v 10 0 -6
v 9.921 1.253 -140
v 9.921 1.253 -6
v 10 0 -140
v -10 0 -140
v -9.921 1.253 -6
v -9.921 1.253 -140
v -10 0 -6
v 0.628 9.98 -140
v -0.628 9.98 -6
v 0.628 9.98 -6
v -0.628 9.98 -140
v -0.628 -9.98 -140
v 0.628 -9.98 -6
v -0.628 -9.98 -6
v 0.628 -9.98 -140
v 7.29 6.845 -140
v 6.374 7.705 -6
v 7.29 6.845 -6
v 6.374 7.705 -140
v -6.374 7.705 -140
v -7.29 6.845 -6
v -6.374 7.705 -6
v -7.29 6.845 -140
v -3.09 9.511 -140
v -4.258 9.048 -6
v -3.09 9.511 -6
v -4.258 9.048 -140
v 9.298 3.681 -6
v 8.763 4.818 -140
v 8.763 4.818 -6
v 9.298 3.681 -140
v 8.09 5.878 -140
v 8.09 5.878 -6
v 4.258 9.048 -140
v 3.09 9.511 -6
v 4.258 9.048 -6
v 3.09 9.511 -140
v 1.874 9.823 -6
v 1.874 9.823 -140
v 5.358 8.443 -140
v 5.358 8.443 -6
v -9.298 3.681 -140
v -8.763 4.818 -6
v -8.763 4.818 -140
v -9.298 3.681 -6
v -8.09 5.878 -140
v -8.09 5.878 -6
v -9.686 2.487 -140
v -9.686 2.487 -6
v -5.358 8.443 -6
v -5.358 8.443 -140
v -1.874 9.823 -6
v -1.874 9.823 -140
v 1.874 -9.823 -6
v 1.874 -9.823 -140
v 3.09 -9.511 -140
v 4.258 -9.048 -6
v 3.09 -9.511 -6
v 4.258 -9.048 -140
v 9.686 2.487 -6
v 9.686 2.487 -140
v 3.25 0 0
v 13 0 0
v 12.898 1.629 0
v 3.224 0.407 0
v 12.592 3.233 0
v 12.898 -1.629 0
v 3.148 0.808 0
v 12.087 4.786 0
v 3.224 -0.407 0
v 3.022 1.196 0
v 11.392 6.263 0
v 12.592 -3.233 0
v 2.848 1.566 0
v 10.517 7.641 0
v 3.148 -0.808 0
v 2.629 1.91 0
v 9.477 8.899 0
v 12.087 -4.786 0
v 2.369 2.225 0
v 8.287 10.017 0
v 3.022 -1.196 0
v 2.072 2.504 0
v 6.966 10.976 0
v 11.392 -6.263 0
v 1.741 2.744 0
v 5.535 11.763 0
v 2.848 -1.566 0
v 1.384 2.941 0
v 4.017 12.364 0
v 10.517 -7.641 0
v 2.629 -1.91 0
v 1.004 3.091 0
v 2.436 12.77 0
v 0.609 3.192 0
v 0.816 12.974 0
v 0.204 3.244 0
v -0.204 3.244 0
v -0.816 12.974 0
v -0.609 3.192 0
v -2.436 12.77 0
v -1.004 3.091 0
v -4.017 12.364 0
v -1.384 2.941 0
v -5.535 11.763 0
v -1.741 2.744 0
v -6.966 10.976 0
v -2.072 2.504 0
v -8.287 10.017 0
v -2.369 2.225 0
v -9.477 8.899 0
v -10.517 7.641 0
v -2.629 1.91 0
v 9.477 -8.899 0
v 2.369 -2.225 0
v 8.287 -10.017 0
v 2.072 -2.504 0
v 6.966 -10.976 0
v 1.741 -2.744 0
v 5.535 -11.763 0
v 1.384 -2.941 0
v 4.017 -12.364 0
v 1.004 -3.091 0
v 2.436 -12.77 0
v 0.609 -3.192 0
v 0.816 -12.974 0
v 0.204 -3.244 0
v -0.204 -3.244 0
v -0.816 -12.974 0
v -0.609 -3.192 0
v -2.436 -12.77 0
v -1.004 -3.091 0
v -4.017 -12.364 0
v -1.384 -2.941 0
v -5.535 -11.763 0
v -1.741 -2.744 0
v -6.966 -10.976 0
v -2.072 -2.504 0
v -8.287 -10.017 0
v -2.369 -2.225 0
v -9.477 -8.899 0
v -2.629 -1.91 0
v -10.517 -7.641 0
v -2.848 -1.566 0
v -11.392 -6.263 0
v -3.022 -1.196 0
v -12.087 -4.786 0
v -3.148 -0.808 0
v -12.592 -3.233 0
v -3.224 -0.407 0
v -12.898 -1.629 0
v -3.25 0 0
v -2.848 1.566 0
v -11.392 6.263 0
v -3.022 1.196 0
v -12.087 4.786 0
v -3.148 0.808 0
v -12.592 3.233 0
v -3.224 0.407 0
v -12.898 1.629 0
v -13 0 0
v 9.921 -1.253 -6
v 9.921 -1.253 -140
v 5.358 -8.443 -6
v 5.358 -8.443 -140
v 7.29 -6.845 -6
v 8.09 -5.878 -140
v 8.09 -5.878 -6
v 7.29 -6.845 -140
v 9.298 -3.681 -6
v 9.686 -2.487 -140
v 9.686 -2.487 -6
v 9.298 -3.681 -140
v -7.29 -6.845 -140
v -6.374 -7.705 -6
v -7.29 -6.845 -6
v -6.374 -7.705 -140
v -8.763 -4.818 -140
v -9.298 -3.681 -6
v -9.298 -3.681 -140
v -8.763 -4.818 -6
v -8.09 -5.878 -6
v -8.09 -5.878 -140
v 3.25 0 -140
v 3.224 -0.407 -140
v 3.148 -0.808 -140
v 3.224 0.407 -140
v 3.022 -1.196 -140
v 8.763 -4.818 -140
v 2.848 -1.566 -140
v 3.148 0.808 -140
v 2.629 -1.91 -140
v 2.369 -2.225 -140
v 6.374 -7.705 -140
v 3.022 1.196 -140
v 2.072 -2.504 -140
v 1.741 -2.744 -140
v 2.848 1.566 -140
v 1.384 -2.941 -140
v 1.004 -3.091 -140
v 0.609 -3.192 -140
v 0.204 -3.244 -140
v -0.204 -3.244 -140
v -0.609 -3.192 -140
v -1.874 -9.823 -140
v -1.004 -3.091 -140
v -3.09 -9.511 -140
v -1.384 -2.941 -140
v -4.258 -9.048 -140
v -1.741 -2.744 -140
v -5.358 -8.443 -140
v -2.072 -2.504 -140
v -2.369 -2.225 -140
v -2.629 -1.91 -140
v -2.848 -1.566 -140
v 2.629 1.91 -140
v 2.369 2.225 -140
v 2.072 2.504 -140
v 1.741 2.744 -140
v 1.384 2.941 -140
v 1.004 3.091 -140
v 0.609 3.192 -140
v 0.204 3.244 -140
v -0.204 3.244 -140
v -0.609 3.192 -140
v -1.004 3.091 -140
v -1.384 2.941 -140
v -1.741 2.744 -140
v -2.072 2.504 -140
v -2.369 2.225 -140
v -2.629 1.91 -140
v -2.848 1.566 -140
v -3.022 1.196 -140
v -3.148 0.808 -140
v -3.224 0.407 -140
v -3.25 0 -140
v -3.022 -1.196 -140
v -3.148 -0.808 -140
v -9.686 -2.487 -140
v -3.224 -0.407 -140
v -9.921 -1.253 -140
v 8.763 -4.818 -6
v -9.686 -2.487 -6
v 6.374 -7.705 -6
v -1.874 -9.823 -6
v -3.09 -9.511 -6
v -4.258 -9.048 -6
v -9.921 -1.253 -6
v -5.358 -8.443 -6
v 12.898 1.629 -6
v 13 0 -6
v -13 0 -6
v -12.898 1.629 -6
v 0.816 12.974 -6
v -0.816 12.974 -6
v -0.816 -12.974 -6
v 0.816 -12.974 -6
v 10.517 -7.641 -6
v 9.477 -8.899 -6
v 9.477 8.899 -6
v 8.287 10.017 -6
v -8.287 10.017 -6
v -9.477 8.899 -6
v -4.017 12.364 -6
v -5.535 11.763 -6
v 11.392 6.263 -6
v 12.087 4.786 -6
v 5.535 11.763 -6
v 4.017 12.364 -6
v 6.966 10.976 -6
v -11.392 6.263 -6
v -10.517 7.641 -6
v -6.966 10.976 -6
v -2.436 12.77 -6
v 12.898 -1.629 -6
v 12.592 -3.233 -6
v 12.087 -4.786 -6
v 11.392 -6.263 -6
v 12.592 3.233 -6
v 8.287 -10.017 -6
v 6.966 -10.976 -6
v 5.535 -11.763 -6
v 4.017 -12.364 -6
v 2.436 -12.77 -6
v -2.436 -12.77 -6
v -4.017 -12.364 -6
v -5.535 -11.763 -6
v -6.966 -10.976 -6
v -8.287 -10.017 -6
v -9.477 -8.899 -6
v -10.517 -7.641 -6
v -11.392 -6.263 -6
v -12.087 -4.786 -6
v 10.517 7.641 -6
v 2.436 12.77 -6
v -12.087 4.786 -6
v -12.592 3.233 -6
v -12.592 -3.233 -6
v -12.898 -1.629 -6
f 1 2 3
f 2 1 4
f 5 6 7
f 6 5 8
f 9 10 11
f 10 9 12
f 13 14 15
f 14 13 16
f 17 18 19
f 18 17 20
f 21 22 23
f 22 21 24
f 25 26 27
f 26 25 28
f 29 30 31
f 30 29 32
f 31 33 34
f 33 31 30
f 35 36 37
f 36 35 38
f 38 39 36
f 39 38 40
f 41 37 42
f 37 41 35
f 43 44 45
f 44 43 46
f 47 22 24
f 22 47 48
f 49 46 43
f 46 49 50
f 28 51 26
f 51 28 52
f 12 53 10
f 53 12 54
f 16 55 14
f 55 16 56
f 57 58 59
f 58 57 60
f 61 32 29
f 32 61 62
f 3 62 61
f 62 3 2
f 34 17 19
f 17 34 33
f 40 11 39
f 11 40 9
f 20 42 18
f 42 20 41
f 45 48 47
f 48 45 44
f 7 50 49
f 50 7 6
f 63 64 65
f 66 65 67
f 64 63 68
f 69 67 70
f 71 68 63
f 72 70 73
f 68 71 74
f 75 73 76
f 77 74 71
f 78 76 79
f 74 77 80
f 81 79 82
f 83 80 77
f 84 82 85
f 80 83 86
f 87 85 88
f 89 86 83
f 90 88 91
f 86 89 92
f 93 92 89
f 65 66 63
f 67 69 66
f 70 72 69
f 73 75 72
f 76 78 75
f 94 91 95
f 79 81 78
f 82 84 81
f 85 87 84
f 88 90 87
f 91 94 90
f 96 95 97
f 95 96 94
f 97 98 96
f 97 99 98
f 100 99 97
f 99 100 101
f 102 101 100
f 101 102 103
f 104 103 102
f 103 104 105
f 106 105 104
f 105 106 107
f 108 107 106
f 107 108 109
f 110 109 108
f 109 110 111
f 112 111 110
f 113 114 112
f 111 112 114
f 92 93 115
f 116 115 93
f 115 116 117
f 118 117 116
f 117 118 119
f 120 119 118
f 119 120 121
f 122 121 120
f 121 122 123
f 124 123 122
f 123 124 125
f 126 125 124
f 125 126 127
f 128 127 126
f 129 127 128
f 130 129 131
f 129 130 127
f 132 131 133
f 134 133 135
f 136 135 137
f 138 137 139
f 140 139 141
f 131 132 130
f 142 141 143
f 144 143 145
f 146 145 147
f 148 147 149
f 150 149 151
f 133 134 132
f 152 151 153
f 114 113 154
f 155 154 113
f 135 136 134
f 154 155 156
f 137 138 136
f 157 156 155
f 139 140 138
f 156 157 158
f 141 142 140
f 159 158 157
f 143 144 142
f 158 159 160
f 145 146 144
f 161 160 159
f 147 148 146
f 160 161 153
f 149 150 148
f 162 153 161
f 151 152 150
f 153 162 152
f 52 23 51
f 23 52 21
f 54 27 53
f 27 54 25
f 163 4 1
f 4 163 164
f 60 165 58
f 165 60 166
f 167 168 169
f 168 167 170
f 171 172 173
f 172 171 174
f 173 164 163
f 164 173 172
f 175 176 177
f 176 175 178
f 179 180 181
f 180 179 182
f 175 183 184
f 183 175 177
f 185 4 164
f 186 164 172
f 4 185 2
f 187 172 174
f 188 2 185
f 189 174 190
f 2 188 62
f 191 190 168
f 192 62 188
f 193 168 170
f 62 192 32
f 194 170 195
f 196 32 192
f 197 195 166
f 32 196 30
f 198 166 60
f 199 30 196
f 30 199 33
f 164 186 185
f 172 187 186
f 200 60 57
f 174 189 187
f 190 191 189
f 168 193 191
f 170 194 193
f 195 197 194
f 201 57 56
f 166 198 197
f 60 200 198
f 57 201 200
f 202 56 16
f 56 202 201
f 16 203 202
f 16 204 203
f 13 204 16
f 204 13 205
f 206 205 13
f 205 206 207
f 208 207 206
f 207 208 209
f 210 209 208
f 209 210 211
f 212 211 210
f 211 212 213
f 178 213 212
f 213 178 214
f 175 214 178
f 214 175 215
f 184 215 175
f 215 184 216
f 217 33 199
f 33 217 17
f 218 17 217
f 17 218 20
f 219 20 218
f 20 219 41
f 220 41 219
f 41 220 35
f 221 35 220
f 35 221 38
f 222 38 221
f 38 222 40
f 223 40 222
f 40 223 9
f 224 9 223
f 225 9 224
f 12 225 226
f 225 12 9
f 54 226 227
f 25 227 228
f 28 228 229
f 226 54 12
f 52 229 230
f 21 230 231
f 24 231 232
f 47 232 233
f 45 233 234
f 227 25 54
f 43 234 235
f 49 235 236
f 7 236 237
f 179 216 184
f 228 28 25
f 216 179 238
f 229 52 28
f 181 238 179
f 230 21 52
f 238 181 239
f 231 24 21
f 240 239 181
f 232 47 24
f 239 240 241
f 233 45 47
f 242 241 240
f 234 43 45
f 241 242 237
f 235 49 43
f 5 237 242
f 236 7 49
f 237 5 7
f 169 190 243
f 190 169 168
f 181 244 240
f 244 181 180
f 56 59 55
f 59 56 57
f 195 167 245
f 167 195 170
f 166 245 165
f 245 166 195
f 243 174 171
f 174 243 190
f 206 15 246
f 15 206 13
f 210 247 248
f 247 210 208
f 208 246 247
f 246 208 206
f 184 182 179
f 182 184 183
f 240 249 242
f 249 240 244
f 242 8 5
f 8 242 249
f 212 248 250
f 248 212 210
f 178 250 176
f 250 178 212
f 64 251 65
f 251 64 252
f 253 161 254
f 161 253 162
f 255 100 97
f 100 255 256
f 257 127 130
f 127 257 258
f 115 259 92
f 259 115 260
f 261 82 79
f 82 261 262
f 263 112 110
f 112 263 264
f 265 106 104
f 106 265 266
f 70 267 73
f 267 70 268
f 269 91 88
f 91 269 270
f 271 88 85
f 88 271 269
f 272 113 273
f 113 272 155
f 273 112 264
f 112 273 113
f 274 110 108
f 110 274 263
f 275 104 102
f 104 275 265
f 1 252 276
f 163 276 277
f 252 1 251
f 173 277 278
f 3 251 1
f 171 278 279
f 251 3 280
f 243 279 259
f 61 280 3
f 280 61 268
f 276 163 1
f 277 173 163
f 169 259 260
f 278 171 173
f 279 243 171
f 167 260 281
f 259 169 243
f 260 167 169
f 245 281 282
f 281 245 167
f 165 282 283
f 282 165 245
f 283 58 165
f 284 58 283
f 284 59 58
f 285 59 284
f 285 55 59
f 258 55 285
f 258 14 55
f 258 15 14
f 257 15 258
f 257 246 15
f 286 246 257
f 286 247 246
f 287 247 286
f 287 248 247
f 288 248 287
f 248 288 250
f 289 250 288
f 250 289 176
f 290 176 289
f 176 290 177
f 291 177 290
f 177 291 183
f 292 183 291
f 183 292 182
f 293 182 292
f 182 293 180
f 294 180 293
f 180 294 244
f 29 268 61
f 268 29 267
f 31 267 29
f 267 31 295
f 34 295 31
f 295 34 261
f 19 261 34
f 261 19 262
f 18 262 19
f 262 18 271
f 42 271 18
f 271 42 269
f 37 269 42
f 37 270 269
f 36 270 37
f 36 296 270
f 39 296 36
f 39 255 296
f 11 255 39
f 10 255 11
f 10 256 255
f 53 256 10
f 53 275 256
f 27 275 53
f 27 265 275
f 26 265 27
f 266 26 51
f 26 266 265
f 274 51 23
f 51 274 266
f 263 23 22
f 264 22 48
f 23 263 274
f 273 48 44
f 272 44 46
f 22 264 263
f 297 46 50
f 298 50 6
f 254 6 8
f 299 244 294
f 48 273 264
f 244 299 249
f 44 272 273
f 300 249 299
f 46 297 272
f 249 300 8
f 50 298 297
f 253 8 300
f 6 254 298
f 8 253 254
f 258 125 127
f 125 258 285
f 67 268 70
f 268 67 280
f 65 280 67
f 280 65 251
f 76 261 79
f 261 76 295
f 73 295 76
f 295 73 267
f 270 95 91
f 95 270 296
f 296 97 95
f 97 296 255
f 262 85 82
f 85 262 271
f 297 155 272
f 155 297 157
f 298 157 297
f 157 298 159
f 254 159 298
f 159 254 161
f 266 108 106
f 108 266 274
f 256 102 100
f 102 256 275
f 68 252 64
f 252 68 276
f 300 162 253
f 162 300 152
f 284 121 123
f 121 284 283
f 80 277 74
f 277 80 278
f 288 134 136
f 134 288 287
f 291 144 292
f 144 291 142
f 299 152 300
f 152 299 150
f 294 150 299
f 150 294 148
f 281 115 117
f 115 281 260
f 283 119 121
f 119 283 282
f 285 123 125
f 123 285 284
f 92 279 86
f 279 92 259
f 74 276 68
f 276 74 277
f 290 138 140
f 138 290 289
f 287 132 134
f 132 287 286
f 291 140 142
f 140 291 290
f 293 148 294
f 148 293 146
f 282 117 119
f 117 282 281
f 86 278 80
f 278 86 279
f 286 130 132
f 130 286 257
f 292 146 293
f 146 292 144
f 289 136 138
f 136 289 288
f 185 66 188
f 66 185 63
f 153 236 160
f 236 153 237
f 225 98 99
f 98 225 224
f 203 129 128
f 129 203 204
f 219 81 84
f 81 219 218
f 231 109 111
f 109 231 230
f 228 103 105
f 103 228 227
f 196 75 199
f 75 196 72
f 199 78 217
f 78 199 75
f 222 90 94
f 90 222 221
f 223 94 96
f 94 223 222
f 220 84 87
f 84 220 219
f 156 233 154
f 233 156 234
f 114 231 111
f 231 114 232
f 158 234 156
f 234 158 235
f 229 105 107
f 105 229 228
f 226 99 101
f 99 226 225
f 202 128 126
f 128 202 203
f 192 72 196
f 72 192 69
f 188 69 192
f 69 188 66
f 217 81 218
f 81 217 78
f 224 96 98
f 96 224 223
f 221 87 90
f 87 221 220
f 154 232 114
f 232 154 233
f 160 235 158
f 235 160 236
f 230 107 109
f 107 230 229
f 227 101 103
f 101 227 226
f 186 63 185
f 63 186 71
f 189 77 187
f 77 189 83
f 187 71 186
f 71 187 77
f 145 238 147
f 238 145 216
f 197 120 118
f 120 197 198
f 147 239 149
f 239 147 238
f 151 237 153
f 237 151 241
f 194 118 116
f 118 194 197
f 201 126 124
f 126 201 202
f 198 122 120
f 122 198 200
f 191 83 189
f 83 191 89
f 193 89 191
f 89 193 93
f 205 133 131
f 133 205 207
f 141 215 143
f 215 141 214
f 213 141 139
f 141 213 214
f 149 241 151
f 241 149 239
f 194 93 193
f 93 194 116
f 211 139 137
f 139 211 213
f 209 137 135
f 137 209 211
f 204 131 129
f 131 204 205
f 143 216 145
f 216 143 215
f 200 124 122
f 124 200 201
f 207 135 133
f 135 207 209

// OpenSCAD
$fn = 50;


difference() {
	union() {
		translate(v = [0, 0, -140.0000000000]) {
			cylinder(h = 140, r = 10.0000000000);
		}
		translate(v = [0, 0, -6.0000000000]) {
			cylinder(h = 6, r = 13.0000000000);
		}
	}
	union() {
		#translate(v = [0, 0, -140]) {
			cylinder(h = 140, r = 3.2500000000);
		}
	}
}
